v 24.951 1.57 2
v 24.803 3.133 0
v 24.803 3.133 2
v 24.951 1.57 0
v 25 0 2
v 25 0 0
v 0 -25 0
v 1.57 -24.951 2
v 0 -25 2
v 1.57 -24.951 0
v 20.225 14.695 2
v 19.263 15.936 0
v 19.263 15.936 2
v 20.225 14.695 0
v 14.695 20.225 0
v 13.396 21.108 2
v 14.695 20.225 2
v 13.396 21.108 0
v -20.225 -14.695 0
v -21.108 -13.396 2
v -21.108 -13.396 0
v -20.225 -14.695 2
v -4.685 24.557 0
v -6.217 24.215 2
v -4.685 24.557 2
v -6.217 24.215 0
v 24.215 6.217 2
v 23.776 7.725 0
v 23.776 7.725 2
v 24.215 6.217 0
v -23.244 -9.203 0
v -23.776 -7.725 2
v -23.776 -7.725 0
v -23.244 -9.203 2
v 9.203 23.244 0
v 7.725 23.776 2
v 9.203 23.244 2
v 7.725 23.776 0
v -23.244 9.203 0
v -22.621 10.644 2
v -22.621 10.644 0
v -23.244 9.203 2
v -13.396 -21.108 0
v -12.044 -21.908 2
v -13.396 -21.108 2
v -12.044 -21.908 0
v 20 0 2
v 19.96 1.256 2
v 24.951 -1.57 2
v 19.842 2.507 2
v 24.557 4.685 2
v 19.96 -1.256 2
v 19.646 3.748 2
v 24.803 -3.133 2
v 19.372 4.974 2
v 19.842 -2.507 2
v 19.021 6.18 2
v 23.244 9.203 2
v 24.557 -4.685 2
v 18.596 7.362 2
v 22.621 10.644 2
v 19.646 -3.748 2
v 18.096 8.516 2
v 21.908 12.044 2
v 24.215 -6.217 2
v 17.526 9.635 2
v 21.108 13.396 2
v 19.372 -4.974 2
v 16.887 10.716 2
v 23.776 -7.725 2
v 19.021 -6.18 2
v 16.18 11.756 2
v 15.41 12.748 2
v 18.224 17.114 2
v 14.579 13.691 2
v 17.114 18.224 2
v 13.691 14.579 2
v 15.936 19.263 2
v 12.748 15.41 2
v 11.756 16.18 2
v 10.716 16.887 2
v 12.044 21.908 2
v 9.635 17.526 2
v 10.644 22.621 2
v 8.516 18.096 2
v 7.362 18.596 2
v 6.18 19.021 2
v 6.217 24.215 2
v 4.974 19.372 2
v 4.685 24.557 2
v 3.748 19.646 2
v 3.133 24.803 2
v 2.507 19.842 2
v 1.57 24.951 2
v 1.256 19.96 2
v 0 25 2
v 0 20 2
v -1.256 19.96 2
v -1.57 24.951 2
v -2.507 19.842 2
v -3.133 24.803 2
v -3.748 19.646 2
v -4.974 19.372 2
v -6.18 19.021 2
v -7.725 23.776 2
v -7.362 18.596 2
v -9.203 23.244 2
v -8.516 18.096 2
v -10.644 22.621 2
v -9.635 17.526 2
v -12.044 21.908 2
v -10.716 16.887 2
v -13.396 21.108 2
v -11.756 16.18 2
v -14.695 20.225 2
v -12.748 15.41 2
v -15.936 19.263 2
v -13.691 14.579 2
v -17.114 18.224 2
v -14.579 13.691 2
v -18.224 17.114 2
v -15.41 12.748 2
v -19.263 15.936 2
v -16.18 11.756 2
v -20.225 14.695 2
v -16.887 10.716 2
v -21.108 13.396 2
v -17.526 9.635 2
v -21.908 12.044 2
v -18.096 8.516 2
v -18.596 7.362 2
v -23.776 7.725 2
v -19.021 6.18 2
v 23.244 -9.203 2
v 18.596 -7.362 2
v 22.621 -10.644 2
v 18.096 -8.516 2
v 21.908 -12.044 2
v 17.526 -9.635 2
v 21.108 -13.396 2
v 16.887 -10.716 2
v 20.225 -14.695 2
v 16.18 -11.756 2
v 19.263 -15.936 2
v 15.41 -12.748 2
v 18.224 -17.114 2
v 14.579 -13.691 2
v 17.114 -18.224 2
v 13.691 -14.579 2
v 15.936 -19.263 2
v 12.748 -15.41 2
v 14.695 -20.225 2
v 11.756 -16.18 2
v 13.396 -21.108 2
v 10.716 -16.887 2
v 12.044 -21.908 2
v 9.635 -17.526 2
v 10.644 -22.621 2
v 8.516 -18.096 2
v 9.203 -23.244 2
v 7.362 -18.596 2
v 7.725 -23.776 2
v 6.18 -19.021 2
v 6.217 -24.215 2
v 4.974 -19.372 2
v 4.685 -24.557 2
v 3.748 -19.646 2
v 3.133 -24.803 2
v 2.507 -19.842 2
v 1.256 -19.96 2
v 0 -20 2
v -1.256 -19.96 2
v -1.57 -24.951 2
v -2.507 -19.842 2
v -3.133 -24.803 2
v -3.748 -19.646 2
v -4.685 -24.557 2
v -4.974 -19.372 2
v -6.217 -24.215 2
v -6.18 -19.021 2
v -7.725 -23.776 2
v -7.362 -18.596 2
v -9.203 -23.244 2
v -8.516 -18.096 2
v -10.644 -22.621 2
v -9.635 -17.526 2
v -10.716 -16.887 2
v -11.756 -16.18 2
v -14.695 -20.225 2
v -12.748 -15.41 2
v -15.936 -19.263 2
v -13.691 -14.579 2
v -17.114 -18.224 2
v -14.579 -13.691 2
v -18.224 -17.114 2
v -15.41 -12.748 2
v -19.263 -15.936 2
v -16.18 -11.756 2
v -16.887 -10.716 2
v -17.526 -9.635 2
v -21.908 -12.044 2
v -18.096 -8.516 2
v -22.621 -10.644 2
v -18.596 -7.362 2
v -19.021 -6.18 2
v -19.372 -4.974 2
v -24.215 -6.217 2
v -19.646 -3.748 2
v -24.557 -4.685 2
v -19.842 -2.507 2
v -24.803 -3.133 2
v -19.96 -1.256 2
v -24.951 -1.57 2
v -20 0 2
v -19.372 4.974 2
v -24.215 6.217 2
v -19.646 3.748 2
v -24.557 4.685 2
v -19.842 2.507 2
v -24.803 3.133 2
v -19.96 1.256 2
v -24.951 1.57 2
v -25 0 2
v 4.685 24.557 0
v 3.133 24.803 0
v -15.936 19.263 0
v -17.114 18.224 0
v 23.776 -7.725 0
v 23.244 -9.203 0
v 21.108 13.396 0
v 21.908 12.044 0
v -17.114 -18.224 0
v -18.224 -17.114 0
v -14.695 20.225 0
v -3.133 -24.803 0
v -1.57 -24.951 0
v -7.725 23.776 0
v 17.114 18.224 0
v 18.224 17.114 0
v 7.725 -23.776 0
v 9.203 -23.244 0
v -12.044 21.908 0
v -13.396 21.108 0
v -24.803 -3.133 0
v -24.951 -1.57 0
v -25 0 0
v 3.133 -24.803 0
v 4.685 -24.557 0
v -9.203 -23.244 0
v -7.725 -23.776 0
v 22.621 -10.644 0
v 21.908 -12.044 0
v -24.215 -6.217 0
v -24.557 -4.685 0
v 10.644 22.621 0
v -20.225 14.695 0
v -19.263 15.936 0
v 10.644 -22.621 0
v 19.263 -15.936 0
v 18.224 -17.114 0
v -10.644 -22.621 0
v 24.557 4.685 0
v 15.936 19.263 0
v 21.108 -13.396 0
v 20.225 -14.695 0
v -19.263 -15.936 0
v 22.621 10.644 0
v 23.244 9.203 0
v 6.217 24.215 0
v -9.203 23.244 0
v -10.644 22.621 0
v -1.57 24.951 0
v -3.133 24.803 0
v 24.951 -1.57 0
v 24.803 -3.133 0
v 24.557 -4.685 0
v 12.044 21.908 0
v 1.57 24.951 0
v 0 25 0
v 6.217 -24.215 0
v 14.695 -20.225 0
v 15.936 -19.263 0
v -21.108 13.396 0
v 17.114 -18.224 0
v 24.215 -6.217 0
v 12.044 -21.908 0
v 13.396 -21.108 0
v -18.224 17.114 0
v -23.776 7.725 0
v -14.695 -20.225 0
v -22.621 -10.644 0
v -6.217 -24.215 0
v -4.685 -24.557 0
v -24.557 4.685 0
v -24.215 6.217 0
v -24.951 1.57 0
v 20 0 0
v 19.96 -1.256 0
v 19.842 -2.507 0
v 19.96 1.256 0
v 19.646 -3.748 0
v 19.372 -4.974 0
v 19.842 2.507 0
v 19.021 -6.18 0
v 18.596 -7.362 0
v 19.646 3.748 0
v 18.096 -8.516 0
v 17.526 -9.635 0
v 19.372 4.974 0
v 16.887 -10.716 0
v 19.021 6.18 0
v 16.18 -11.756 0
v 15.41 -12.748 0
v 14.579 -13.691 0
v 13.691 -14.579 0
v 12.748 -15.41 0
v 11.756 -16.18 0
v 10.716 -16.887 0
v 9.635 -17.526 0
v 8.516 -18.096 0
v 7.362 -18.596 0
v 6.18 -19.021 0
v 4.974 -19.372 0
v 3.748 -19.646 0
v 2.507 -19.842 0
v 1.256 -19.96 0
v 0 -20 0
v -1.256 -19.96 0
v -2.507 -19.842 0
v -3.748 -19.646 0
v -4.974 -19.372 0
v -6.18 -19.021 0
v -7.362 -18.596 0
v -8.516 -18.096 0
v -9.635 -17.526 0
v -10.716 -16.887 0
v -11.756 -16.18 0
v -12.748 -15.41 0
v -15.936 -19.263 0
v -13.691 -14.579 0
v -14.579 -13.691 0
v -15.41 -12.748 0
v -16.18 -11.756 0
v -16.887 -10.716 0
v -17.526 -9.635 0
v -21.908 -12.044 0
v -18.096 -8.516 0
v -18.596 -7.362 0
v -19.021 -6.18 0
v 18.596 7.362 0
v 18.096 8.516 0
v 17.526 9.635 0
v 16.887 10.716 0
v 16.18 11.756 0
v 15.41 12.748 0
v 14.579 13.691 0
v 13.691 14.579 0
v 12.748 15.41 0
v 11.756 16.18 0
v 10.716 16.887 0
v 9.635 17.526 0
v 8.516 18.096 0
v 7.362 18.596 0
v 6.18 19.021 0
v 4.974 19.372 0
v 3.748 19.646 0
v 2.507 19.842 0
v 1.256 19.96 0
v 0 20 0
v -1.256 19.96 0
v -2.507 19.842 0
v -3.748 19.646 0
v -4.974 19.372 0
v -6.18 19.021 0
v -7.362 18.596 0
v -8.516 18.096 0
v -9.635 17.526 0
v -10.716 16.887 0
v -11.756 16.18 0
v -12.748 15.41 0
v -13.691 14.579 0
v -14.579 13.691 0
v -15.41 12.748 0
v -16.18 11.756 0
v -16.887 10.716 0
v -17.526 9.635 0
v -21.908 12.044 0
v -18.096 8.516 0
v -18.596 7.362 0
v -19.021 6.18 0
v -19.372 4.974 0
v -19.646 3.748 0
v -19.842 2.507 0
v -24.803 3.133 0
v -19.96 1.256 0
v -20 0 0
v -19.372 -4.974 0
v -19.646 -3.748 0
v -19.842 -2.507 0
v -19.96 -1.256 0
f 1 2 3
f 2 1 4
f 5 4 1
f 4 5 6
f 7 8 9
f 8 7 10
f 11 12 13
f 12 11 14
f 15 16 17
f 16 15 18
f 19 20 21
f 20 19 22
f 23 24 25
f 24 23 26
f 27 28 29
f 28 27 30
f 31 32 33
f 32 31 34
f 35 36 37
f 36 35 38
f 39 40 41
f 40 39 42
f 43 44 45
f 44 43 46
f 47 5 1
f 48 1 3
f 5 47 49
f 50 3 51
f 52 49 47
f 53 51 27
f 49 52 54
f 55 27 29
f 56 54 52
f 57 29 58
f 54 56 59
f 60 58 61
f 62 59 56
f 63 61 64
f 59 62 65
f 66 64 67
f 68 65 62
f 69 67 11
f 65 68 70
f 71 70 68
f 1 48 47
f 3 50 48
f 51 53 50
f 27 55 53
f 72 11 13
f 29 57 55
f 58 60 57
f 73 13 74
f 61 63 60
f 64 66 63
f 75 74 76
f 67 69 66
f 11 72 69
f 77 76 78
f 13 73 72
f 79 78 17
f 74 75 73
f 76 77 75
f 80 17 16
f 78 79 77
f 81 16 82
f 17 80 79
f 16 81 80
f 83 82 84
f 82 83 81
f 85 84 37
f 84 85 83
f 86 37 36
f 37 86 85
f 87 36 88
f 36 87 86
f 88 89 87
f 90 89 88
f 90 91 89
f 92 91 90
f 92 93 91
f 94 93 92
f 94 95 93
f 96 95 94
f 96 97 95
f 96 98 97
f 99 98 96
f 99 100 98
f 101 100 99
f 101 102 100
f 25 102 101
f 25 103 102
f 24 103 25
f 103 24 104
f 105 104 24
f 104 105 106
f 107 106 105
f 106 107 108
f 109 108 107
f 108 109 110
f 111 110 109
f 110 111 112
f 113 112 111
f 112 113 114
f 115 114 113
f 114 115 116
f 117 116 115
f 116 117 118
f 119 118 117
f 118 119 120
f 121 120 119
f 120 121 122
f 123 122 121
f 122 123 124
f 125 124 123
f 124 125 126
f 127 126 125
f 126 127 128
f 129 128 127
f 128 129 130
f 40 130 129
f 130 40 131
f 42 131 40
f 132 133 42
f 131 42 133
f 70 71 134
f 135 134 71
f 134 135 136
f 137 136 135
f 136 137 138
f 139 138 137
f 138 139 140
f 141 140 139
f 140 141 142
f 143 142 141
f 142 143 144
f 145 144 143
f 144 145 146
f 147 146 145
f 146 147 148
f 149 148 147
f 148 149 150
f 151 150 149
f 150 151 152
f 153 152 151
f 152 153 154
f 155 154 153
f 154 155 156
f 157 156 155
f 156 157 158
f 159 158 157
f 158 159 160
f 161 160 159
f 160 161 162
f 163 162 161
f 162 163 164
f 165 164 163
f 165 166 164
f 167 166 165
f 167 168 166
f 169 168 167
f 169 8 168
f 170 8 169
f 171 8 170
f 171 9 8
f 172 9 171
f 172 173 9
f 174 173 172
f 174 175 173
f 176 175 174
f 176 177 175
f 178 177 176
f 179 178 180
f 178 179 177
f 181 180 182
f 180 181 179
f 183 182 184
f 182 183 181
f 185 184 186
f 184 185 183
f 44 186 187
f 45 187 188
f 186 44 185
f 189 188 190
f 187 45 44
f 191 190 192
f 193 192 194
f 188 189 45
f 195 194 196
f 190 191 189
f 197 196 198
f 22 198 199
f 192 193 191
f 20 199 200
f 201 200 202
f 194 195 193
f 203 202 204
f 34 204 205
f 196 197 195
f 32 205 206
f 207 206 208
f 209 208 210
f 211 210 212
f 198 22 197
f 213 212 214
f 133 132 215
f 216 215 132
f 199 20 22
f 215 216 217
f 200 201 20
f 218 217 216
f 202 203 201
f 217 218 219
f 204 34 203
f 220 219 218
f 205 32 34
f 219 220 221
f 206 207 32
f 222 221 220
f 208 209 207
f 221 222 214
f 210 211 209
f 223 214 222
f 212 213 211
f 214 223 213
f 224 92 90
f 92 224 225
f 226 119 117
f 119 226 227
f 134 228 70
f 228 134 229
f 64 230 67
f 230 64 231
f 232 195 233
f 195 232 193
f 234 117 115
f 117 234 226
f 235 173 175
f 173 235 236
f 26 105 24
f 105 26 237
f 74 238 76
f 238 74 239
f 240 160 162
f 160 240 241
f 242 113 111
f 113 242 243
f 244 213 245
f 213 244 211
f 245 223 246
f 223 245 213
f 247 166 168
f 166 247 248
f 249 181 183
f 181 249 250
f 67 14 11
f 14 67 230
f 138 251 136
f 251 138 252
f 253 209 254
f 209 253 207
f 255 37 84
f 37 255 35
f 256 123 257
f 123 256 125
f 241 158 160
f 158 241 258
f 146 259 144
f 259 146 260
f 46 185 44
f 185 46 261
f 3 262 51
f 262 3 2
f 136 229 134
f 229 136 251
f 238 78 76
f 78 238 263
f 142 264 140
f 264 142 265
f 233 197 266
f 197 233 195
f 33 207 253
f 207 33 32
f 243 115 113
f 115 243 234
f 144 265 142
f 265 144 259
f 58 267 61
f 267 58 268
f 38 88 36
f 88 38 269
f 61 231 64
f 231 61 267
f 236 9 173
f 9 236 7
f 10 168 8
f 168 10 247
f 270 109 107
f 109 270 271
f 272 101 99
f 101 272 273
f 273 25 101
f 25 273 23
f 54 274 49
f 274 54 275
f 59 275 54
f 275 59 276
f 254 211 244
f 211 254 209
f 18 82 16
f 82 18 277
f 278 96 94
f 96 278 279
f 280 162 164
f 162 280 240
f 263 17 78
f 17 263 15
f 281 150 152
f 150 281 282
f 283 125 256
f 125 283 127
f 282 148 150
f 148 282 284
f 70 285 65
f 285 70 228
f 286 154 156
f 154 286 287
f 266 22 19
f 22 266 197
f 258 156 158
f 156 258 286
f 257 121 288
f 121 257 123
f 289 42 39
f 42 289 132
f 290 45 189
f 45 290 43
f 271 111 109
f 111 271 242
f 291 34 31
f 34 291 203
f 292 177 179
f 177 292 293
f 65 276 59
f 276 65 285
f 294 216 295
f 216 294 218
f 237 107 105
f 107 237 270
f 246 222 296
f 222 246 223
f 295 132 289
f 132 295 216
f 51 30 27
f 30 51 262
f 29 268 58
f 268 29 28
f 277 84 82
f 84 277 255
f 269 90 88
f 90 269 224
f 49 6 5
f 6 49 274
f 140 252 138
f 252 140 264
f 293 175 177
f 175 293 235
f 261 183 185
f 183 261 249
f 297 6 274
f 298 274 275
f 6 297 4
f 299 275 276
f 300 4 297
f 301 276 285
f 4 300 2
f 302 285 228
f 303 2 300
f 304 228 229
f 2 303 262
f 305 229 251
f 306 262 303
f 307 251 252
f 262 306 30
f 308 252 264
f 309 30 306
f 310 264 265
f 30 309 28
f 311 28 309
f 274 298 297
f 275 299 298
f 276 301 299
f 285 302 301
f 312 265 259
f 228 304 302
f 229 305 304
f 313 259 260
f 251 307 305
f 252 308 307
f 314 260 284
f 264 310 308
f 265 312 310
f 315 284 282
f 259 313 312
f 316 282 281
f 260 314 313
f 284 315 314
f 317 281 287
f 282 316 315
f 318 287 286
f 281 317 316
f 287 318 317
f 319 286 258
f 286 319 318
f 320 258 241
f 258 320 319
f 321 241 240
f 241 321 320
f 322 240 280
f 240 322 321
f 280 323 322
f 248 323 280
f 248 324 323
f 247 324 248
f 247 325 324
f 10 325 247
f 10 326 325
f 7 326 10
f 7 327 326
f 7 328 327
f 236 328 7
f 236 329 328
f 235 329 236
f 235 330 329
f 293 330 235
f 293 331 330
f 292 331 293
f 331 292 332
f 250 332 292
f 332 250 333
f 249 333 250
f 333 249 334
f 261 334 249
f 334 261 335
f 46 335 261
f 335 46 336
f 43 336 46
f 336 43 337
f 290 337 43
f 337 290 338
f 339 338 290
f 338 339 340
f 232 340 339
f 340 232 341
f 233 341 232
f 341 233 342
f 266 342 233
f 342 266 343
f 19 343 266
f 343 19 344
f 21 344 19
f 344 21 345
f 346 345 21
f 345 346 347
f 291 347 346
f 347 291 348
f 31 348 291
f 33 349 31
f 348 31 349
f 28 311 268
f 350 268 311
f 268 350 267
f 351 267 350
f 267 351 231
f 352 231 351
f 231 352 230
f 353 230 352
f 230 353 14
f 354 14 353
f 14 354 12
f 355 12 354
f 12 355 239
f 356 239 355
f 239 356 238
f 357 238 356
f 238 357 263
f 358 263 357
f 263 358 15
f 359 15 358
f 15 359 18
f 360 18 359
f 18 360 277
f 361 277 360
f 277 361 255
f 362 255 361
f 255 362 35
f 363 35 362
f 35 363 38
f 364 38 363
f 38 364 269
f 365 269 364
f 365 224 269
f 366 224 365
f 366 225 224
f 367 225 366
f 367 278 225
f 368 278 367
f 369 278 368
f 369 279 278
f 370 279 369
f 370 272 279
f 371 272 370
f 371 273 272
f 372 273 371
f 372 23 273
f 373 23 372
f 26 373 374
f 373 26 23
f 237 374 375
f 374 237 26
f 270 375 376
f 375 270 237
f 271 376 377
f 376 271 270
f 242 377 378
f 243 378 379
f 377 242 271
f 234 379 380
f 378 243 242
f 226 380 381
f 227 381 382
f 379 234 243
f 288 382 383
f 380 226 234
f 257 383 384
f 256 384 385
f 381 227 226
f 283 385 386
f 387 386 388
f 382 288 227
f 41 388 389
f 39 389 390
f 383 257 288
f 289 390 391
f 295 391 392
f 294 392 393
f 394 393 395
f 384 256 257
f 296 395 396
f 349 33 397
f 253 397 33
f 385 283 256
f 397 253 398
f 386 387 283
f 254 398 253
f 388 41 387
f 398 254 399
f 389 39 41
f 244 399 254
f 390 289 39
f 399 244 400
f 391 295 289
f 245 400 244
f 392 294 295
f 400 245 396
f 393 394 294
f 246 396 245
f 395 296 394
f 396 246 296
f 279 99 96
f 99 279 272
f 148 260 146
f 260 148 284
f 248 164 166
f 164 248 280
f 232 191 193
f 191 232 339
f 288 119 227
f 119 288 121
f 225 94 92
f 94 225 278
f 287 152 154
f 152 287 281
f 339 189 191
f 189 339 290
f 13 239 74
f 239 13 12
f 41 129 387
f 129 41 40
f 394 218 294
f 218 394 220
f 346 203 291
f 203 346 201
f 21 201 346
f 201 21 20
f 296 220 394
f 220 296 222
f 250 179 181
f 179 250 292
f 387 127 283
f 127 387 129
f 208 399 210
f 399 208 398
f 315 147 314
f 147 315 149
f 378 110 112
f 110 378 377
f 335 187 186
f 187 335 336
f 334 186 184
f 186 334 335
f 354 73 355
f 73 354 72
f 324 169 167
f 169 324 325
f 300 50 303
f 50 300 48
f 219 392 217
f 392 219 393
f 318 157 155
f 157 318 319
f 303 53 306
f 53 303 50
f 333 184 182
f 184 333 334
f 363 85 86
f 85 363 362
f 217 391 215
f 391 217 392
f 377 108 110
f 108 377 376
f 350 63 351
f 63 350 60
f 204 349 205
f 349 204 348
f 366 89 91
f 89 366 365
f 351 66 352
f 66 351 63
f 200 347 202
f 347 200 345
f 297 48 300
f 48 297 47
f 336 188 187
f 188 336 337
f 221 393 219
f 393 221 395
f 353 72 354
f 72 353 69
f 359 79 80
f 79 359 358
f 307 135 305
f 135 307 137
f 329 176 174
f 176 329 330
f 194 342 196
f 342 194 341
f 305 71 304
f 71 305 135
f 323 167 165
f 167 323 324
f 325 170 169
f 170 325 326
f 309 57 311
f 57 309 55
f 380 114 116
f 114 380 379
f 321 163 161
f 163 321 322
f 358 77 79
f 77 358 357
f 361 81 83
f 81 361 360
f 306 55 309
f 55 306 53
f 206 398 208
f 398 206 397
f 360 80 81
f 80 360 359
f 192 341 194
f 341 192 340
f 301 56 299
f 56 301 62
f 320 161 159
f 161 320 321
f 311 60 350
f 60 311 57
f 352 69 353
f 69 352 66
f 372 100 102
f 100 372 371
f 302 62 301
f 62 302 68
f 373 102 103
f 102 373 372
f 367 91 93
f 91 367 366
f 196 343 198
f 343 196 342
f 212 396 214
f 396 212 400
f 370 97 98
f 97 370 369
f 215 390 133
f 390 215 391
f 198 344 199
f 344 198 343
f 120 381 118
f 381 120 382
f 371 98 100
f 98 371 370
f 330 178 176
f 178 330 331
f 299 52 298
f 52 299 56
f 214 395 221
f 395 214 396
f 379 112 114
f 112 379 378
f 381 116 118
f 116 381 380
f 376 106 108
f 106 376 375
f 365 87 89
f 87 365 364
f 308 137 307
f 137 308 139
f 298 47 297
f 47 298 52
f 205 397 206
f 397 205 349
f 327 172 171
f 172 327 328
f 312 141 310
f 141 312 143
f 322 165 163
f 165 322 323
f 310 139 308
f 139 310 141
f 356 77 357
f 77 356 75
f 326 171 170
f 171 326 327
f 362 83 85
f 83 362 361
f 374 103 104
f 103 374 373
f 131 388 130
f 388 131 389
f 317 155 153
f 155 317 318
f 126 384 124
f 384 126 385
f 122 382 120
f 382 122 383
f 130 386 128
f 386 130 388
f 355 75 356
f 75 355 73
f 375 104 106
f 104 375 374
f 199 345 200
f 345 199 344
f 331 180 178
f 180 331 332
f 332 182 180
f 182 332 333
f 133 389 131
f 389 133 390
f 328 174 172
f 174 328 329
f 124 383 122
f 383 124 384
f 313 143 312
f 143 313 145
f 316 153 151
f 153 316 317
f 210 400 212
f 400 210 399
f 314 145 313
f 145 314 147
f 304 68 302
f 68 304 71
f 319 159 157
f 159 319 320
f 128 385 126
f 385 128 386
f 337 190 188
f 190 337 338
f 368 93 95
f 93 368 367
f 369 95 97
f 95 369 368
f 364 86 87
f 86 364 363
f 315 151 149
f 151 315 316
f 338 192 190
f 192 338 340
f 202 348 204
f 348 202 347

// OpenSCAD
// Spacer Ring Parameters
spacer_ring_outer_diameter = 50; // Outer diameter of the ring
spacer_ring_inner_diameter = 40; // Inner diameter of the ring
spacer_ring_thickness = 2; // Thickness of the ring

// Spacer Ring Component
module spacer_ring() {
    difference() {
        // Outer cylinder
        cylinder(d=spacer_ring_outer_diameter, h=spacer_ring_thickness, $fn=100);
        // Inner cylinder (hole)
        translate([0, 0, -1]) // Ensure the hole is centered
        cylinder(d=spacer_ring_inner_diameter, h=spacer_ring_thickness + 2, $fn=100);
    }
}

// Render Spacer Ring
spacer_ring();
